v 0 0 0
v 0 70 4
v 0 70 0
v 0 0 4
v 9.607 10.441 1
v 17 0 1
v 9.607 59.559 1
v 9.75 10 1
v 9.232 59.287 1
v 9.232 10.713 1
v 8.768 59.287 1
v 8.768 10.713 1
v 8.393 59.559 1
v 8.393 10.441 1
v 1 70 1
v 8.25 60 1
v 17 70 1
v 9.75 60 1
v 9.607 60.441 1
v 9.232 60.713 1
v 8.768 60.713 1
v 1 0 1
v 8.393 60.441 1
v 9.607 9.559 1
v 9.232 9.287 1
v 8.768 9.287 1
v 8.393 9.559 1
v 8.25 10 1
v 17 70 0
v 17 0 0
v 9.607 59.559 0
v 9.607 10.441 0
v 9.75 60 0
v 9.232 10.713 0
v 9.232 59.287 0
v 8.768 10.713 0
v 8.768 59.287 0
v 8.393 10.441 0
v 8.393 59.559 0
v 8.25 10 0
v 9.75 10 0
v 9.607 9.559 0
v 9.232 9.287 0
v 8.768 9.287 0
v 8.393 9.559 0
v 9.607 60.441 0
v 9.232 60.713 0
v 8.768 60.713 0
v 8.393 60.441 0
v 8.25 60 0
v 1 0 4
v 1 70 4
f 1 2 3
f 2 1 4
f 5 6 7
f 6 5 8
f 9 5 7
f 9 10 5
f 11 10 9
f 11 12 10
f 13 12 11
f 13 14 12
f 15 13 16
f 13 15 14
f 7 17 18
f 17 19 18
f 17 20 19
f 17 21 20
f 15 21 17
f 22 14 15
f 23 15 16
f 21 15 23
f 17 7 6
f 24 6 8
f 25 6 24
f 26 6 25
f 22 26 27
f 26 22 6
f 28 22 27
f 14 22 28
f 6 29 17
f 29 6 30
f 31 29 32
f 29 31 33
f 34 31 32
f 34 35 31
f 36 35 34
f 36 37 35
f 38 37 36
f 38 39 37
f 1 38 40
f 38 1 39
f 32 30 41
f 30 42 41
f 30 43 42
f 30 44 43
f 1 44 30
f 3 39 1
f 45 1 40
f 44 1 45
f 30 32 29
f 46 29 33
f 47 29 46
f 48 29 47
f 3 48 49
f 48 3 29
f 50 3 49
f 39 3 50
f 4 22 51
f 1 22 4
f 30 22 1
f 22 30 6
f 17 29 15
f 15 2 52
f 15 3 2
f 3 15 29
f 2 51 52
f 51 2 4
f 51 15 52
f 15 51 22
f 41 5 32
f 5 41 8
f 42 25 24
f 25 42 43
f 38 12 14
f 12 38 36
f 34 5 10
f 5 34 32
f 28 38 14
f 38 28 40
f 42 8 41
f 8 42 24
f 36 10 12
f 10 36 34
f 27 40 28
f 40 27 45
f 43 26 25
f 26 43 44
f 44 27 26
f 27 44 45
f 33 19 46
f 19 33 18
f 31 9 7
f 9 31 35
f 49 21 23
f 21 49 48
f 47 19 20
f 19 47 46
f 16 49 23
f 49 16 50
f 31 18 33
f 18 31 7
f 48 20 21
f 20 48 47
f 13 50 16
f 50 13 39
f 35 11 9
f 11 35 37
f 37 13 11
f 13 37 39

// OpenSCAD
difference(){
    union(){
        cube([17,70,1]);
        cube([1,70,4]);
    }
    for(i=[-1,1])translate([16/2+1,70/2+i*(70/2-10),0])cylinder(d=1.5,h=3,center=true,$fs=.5);
}
